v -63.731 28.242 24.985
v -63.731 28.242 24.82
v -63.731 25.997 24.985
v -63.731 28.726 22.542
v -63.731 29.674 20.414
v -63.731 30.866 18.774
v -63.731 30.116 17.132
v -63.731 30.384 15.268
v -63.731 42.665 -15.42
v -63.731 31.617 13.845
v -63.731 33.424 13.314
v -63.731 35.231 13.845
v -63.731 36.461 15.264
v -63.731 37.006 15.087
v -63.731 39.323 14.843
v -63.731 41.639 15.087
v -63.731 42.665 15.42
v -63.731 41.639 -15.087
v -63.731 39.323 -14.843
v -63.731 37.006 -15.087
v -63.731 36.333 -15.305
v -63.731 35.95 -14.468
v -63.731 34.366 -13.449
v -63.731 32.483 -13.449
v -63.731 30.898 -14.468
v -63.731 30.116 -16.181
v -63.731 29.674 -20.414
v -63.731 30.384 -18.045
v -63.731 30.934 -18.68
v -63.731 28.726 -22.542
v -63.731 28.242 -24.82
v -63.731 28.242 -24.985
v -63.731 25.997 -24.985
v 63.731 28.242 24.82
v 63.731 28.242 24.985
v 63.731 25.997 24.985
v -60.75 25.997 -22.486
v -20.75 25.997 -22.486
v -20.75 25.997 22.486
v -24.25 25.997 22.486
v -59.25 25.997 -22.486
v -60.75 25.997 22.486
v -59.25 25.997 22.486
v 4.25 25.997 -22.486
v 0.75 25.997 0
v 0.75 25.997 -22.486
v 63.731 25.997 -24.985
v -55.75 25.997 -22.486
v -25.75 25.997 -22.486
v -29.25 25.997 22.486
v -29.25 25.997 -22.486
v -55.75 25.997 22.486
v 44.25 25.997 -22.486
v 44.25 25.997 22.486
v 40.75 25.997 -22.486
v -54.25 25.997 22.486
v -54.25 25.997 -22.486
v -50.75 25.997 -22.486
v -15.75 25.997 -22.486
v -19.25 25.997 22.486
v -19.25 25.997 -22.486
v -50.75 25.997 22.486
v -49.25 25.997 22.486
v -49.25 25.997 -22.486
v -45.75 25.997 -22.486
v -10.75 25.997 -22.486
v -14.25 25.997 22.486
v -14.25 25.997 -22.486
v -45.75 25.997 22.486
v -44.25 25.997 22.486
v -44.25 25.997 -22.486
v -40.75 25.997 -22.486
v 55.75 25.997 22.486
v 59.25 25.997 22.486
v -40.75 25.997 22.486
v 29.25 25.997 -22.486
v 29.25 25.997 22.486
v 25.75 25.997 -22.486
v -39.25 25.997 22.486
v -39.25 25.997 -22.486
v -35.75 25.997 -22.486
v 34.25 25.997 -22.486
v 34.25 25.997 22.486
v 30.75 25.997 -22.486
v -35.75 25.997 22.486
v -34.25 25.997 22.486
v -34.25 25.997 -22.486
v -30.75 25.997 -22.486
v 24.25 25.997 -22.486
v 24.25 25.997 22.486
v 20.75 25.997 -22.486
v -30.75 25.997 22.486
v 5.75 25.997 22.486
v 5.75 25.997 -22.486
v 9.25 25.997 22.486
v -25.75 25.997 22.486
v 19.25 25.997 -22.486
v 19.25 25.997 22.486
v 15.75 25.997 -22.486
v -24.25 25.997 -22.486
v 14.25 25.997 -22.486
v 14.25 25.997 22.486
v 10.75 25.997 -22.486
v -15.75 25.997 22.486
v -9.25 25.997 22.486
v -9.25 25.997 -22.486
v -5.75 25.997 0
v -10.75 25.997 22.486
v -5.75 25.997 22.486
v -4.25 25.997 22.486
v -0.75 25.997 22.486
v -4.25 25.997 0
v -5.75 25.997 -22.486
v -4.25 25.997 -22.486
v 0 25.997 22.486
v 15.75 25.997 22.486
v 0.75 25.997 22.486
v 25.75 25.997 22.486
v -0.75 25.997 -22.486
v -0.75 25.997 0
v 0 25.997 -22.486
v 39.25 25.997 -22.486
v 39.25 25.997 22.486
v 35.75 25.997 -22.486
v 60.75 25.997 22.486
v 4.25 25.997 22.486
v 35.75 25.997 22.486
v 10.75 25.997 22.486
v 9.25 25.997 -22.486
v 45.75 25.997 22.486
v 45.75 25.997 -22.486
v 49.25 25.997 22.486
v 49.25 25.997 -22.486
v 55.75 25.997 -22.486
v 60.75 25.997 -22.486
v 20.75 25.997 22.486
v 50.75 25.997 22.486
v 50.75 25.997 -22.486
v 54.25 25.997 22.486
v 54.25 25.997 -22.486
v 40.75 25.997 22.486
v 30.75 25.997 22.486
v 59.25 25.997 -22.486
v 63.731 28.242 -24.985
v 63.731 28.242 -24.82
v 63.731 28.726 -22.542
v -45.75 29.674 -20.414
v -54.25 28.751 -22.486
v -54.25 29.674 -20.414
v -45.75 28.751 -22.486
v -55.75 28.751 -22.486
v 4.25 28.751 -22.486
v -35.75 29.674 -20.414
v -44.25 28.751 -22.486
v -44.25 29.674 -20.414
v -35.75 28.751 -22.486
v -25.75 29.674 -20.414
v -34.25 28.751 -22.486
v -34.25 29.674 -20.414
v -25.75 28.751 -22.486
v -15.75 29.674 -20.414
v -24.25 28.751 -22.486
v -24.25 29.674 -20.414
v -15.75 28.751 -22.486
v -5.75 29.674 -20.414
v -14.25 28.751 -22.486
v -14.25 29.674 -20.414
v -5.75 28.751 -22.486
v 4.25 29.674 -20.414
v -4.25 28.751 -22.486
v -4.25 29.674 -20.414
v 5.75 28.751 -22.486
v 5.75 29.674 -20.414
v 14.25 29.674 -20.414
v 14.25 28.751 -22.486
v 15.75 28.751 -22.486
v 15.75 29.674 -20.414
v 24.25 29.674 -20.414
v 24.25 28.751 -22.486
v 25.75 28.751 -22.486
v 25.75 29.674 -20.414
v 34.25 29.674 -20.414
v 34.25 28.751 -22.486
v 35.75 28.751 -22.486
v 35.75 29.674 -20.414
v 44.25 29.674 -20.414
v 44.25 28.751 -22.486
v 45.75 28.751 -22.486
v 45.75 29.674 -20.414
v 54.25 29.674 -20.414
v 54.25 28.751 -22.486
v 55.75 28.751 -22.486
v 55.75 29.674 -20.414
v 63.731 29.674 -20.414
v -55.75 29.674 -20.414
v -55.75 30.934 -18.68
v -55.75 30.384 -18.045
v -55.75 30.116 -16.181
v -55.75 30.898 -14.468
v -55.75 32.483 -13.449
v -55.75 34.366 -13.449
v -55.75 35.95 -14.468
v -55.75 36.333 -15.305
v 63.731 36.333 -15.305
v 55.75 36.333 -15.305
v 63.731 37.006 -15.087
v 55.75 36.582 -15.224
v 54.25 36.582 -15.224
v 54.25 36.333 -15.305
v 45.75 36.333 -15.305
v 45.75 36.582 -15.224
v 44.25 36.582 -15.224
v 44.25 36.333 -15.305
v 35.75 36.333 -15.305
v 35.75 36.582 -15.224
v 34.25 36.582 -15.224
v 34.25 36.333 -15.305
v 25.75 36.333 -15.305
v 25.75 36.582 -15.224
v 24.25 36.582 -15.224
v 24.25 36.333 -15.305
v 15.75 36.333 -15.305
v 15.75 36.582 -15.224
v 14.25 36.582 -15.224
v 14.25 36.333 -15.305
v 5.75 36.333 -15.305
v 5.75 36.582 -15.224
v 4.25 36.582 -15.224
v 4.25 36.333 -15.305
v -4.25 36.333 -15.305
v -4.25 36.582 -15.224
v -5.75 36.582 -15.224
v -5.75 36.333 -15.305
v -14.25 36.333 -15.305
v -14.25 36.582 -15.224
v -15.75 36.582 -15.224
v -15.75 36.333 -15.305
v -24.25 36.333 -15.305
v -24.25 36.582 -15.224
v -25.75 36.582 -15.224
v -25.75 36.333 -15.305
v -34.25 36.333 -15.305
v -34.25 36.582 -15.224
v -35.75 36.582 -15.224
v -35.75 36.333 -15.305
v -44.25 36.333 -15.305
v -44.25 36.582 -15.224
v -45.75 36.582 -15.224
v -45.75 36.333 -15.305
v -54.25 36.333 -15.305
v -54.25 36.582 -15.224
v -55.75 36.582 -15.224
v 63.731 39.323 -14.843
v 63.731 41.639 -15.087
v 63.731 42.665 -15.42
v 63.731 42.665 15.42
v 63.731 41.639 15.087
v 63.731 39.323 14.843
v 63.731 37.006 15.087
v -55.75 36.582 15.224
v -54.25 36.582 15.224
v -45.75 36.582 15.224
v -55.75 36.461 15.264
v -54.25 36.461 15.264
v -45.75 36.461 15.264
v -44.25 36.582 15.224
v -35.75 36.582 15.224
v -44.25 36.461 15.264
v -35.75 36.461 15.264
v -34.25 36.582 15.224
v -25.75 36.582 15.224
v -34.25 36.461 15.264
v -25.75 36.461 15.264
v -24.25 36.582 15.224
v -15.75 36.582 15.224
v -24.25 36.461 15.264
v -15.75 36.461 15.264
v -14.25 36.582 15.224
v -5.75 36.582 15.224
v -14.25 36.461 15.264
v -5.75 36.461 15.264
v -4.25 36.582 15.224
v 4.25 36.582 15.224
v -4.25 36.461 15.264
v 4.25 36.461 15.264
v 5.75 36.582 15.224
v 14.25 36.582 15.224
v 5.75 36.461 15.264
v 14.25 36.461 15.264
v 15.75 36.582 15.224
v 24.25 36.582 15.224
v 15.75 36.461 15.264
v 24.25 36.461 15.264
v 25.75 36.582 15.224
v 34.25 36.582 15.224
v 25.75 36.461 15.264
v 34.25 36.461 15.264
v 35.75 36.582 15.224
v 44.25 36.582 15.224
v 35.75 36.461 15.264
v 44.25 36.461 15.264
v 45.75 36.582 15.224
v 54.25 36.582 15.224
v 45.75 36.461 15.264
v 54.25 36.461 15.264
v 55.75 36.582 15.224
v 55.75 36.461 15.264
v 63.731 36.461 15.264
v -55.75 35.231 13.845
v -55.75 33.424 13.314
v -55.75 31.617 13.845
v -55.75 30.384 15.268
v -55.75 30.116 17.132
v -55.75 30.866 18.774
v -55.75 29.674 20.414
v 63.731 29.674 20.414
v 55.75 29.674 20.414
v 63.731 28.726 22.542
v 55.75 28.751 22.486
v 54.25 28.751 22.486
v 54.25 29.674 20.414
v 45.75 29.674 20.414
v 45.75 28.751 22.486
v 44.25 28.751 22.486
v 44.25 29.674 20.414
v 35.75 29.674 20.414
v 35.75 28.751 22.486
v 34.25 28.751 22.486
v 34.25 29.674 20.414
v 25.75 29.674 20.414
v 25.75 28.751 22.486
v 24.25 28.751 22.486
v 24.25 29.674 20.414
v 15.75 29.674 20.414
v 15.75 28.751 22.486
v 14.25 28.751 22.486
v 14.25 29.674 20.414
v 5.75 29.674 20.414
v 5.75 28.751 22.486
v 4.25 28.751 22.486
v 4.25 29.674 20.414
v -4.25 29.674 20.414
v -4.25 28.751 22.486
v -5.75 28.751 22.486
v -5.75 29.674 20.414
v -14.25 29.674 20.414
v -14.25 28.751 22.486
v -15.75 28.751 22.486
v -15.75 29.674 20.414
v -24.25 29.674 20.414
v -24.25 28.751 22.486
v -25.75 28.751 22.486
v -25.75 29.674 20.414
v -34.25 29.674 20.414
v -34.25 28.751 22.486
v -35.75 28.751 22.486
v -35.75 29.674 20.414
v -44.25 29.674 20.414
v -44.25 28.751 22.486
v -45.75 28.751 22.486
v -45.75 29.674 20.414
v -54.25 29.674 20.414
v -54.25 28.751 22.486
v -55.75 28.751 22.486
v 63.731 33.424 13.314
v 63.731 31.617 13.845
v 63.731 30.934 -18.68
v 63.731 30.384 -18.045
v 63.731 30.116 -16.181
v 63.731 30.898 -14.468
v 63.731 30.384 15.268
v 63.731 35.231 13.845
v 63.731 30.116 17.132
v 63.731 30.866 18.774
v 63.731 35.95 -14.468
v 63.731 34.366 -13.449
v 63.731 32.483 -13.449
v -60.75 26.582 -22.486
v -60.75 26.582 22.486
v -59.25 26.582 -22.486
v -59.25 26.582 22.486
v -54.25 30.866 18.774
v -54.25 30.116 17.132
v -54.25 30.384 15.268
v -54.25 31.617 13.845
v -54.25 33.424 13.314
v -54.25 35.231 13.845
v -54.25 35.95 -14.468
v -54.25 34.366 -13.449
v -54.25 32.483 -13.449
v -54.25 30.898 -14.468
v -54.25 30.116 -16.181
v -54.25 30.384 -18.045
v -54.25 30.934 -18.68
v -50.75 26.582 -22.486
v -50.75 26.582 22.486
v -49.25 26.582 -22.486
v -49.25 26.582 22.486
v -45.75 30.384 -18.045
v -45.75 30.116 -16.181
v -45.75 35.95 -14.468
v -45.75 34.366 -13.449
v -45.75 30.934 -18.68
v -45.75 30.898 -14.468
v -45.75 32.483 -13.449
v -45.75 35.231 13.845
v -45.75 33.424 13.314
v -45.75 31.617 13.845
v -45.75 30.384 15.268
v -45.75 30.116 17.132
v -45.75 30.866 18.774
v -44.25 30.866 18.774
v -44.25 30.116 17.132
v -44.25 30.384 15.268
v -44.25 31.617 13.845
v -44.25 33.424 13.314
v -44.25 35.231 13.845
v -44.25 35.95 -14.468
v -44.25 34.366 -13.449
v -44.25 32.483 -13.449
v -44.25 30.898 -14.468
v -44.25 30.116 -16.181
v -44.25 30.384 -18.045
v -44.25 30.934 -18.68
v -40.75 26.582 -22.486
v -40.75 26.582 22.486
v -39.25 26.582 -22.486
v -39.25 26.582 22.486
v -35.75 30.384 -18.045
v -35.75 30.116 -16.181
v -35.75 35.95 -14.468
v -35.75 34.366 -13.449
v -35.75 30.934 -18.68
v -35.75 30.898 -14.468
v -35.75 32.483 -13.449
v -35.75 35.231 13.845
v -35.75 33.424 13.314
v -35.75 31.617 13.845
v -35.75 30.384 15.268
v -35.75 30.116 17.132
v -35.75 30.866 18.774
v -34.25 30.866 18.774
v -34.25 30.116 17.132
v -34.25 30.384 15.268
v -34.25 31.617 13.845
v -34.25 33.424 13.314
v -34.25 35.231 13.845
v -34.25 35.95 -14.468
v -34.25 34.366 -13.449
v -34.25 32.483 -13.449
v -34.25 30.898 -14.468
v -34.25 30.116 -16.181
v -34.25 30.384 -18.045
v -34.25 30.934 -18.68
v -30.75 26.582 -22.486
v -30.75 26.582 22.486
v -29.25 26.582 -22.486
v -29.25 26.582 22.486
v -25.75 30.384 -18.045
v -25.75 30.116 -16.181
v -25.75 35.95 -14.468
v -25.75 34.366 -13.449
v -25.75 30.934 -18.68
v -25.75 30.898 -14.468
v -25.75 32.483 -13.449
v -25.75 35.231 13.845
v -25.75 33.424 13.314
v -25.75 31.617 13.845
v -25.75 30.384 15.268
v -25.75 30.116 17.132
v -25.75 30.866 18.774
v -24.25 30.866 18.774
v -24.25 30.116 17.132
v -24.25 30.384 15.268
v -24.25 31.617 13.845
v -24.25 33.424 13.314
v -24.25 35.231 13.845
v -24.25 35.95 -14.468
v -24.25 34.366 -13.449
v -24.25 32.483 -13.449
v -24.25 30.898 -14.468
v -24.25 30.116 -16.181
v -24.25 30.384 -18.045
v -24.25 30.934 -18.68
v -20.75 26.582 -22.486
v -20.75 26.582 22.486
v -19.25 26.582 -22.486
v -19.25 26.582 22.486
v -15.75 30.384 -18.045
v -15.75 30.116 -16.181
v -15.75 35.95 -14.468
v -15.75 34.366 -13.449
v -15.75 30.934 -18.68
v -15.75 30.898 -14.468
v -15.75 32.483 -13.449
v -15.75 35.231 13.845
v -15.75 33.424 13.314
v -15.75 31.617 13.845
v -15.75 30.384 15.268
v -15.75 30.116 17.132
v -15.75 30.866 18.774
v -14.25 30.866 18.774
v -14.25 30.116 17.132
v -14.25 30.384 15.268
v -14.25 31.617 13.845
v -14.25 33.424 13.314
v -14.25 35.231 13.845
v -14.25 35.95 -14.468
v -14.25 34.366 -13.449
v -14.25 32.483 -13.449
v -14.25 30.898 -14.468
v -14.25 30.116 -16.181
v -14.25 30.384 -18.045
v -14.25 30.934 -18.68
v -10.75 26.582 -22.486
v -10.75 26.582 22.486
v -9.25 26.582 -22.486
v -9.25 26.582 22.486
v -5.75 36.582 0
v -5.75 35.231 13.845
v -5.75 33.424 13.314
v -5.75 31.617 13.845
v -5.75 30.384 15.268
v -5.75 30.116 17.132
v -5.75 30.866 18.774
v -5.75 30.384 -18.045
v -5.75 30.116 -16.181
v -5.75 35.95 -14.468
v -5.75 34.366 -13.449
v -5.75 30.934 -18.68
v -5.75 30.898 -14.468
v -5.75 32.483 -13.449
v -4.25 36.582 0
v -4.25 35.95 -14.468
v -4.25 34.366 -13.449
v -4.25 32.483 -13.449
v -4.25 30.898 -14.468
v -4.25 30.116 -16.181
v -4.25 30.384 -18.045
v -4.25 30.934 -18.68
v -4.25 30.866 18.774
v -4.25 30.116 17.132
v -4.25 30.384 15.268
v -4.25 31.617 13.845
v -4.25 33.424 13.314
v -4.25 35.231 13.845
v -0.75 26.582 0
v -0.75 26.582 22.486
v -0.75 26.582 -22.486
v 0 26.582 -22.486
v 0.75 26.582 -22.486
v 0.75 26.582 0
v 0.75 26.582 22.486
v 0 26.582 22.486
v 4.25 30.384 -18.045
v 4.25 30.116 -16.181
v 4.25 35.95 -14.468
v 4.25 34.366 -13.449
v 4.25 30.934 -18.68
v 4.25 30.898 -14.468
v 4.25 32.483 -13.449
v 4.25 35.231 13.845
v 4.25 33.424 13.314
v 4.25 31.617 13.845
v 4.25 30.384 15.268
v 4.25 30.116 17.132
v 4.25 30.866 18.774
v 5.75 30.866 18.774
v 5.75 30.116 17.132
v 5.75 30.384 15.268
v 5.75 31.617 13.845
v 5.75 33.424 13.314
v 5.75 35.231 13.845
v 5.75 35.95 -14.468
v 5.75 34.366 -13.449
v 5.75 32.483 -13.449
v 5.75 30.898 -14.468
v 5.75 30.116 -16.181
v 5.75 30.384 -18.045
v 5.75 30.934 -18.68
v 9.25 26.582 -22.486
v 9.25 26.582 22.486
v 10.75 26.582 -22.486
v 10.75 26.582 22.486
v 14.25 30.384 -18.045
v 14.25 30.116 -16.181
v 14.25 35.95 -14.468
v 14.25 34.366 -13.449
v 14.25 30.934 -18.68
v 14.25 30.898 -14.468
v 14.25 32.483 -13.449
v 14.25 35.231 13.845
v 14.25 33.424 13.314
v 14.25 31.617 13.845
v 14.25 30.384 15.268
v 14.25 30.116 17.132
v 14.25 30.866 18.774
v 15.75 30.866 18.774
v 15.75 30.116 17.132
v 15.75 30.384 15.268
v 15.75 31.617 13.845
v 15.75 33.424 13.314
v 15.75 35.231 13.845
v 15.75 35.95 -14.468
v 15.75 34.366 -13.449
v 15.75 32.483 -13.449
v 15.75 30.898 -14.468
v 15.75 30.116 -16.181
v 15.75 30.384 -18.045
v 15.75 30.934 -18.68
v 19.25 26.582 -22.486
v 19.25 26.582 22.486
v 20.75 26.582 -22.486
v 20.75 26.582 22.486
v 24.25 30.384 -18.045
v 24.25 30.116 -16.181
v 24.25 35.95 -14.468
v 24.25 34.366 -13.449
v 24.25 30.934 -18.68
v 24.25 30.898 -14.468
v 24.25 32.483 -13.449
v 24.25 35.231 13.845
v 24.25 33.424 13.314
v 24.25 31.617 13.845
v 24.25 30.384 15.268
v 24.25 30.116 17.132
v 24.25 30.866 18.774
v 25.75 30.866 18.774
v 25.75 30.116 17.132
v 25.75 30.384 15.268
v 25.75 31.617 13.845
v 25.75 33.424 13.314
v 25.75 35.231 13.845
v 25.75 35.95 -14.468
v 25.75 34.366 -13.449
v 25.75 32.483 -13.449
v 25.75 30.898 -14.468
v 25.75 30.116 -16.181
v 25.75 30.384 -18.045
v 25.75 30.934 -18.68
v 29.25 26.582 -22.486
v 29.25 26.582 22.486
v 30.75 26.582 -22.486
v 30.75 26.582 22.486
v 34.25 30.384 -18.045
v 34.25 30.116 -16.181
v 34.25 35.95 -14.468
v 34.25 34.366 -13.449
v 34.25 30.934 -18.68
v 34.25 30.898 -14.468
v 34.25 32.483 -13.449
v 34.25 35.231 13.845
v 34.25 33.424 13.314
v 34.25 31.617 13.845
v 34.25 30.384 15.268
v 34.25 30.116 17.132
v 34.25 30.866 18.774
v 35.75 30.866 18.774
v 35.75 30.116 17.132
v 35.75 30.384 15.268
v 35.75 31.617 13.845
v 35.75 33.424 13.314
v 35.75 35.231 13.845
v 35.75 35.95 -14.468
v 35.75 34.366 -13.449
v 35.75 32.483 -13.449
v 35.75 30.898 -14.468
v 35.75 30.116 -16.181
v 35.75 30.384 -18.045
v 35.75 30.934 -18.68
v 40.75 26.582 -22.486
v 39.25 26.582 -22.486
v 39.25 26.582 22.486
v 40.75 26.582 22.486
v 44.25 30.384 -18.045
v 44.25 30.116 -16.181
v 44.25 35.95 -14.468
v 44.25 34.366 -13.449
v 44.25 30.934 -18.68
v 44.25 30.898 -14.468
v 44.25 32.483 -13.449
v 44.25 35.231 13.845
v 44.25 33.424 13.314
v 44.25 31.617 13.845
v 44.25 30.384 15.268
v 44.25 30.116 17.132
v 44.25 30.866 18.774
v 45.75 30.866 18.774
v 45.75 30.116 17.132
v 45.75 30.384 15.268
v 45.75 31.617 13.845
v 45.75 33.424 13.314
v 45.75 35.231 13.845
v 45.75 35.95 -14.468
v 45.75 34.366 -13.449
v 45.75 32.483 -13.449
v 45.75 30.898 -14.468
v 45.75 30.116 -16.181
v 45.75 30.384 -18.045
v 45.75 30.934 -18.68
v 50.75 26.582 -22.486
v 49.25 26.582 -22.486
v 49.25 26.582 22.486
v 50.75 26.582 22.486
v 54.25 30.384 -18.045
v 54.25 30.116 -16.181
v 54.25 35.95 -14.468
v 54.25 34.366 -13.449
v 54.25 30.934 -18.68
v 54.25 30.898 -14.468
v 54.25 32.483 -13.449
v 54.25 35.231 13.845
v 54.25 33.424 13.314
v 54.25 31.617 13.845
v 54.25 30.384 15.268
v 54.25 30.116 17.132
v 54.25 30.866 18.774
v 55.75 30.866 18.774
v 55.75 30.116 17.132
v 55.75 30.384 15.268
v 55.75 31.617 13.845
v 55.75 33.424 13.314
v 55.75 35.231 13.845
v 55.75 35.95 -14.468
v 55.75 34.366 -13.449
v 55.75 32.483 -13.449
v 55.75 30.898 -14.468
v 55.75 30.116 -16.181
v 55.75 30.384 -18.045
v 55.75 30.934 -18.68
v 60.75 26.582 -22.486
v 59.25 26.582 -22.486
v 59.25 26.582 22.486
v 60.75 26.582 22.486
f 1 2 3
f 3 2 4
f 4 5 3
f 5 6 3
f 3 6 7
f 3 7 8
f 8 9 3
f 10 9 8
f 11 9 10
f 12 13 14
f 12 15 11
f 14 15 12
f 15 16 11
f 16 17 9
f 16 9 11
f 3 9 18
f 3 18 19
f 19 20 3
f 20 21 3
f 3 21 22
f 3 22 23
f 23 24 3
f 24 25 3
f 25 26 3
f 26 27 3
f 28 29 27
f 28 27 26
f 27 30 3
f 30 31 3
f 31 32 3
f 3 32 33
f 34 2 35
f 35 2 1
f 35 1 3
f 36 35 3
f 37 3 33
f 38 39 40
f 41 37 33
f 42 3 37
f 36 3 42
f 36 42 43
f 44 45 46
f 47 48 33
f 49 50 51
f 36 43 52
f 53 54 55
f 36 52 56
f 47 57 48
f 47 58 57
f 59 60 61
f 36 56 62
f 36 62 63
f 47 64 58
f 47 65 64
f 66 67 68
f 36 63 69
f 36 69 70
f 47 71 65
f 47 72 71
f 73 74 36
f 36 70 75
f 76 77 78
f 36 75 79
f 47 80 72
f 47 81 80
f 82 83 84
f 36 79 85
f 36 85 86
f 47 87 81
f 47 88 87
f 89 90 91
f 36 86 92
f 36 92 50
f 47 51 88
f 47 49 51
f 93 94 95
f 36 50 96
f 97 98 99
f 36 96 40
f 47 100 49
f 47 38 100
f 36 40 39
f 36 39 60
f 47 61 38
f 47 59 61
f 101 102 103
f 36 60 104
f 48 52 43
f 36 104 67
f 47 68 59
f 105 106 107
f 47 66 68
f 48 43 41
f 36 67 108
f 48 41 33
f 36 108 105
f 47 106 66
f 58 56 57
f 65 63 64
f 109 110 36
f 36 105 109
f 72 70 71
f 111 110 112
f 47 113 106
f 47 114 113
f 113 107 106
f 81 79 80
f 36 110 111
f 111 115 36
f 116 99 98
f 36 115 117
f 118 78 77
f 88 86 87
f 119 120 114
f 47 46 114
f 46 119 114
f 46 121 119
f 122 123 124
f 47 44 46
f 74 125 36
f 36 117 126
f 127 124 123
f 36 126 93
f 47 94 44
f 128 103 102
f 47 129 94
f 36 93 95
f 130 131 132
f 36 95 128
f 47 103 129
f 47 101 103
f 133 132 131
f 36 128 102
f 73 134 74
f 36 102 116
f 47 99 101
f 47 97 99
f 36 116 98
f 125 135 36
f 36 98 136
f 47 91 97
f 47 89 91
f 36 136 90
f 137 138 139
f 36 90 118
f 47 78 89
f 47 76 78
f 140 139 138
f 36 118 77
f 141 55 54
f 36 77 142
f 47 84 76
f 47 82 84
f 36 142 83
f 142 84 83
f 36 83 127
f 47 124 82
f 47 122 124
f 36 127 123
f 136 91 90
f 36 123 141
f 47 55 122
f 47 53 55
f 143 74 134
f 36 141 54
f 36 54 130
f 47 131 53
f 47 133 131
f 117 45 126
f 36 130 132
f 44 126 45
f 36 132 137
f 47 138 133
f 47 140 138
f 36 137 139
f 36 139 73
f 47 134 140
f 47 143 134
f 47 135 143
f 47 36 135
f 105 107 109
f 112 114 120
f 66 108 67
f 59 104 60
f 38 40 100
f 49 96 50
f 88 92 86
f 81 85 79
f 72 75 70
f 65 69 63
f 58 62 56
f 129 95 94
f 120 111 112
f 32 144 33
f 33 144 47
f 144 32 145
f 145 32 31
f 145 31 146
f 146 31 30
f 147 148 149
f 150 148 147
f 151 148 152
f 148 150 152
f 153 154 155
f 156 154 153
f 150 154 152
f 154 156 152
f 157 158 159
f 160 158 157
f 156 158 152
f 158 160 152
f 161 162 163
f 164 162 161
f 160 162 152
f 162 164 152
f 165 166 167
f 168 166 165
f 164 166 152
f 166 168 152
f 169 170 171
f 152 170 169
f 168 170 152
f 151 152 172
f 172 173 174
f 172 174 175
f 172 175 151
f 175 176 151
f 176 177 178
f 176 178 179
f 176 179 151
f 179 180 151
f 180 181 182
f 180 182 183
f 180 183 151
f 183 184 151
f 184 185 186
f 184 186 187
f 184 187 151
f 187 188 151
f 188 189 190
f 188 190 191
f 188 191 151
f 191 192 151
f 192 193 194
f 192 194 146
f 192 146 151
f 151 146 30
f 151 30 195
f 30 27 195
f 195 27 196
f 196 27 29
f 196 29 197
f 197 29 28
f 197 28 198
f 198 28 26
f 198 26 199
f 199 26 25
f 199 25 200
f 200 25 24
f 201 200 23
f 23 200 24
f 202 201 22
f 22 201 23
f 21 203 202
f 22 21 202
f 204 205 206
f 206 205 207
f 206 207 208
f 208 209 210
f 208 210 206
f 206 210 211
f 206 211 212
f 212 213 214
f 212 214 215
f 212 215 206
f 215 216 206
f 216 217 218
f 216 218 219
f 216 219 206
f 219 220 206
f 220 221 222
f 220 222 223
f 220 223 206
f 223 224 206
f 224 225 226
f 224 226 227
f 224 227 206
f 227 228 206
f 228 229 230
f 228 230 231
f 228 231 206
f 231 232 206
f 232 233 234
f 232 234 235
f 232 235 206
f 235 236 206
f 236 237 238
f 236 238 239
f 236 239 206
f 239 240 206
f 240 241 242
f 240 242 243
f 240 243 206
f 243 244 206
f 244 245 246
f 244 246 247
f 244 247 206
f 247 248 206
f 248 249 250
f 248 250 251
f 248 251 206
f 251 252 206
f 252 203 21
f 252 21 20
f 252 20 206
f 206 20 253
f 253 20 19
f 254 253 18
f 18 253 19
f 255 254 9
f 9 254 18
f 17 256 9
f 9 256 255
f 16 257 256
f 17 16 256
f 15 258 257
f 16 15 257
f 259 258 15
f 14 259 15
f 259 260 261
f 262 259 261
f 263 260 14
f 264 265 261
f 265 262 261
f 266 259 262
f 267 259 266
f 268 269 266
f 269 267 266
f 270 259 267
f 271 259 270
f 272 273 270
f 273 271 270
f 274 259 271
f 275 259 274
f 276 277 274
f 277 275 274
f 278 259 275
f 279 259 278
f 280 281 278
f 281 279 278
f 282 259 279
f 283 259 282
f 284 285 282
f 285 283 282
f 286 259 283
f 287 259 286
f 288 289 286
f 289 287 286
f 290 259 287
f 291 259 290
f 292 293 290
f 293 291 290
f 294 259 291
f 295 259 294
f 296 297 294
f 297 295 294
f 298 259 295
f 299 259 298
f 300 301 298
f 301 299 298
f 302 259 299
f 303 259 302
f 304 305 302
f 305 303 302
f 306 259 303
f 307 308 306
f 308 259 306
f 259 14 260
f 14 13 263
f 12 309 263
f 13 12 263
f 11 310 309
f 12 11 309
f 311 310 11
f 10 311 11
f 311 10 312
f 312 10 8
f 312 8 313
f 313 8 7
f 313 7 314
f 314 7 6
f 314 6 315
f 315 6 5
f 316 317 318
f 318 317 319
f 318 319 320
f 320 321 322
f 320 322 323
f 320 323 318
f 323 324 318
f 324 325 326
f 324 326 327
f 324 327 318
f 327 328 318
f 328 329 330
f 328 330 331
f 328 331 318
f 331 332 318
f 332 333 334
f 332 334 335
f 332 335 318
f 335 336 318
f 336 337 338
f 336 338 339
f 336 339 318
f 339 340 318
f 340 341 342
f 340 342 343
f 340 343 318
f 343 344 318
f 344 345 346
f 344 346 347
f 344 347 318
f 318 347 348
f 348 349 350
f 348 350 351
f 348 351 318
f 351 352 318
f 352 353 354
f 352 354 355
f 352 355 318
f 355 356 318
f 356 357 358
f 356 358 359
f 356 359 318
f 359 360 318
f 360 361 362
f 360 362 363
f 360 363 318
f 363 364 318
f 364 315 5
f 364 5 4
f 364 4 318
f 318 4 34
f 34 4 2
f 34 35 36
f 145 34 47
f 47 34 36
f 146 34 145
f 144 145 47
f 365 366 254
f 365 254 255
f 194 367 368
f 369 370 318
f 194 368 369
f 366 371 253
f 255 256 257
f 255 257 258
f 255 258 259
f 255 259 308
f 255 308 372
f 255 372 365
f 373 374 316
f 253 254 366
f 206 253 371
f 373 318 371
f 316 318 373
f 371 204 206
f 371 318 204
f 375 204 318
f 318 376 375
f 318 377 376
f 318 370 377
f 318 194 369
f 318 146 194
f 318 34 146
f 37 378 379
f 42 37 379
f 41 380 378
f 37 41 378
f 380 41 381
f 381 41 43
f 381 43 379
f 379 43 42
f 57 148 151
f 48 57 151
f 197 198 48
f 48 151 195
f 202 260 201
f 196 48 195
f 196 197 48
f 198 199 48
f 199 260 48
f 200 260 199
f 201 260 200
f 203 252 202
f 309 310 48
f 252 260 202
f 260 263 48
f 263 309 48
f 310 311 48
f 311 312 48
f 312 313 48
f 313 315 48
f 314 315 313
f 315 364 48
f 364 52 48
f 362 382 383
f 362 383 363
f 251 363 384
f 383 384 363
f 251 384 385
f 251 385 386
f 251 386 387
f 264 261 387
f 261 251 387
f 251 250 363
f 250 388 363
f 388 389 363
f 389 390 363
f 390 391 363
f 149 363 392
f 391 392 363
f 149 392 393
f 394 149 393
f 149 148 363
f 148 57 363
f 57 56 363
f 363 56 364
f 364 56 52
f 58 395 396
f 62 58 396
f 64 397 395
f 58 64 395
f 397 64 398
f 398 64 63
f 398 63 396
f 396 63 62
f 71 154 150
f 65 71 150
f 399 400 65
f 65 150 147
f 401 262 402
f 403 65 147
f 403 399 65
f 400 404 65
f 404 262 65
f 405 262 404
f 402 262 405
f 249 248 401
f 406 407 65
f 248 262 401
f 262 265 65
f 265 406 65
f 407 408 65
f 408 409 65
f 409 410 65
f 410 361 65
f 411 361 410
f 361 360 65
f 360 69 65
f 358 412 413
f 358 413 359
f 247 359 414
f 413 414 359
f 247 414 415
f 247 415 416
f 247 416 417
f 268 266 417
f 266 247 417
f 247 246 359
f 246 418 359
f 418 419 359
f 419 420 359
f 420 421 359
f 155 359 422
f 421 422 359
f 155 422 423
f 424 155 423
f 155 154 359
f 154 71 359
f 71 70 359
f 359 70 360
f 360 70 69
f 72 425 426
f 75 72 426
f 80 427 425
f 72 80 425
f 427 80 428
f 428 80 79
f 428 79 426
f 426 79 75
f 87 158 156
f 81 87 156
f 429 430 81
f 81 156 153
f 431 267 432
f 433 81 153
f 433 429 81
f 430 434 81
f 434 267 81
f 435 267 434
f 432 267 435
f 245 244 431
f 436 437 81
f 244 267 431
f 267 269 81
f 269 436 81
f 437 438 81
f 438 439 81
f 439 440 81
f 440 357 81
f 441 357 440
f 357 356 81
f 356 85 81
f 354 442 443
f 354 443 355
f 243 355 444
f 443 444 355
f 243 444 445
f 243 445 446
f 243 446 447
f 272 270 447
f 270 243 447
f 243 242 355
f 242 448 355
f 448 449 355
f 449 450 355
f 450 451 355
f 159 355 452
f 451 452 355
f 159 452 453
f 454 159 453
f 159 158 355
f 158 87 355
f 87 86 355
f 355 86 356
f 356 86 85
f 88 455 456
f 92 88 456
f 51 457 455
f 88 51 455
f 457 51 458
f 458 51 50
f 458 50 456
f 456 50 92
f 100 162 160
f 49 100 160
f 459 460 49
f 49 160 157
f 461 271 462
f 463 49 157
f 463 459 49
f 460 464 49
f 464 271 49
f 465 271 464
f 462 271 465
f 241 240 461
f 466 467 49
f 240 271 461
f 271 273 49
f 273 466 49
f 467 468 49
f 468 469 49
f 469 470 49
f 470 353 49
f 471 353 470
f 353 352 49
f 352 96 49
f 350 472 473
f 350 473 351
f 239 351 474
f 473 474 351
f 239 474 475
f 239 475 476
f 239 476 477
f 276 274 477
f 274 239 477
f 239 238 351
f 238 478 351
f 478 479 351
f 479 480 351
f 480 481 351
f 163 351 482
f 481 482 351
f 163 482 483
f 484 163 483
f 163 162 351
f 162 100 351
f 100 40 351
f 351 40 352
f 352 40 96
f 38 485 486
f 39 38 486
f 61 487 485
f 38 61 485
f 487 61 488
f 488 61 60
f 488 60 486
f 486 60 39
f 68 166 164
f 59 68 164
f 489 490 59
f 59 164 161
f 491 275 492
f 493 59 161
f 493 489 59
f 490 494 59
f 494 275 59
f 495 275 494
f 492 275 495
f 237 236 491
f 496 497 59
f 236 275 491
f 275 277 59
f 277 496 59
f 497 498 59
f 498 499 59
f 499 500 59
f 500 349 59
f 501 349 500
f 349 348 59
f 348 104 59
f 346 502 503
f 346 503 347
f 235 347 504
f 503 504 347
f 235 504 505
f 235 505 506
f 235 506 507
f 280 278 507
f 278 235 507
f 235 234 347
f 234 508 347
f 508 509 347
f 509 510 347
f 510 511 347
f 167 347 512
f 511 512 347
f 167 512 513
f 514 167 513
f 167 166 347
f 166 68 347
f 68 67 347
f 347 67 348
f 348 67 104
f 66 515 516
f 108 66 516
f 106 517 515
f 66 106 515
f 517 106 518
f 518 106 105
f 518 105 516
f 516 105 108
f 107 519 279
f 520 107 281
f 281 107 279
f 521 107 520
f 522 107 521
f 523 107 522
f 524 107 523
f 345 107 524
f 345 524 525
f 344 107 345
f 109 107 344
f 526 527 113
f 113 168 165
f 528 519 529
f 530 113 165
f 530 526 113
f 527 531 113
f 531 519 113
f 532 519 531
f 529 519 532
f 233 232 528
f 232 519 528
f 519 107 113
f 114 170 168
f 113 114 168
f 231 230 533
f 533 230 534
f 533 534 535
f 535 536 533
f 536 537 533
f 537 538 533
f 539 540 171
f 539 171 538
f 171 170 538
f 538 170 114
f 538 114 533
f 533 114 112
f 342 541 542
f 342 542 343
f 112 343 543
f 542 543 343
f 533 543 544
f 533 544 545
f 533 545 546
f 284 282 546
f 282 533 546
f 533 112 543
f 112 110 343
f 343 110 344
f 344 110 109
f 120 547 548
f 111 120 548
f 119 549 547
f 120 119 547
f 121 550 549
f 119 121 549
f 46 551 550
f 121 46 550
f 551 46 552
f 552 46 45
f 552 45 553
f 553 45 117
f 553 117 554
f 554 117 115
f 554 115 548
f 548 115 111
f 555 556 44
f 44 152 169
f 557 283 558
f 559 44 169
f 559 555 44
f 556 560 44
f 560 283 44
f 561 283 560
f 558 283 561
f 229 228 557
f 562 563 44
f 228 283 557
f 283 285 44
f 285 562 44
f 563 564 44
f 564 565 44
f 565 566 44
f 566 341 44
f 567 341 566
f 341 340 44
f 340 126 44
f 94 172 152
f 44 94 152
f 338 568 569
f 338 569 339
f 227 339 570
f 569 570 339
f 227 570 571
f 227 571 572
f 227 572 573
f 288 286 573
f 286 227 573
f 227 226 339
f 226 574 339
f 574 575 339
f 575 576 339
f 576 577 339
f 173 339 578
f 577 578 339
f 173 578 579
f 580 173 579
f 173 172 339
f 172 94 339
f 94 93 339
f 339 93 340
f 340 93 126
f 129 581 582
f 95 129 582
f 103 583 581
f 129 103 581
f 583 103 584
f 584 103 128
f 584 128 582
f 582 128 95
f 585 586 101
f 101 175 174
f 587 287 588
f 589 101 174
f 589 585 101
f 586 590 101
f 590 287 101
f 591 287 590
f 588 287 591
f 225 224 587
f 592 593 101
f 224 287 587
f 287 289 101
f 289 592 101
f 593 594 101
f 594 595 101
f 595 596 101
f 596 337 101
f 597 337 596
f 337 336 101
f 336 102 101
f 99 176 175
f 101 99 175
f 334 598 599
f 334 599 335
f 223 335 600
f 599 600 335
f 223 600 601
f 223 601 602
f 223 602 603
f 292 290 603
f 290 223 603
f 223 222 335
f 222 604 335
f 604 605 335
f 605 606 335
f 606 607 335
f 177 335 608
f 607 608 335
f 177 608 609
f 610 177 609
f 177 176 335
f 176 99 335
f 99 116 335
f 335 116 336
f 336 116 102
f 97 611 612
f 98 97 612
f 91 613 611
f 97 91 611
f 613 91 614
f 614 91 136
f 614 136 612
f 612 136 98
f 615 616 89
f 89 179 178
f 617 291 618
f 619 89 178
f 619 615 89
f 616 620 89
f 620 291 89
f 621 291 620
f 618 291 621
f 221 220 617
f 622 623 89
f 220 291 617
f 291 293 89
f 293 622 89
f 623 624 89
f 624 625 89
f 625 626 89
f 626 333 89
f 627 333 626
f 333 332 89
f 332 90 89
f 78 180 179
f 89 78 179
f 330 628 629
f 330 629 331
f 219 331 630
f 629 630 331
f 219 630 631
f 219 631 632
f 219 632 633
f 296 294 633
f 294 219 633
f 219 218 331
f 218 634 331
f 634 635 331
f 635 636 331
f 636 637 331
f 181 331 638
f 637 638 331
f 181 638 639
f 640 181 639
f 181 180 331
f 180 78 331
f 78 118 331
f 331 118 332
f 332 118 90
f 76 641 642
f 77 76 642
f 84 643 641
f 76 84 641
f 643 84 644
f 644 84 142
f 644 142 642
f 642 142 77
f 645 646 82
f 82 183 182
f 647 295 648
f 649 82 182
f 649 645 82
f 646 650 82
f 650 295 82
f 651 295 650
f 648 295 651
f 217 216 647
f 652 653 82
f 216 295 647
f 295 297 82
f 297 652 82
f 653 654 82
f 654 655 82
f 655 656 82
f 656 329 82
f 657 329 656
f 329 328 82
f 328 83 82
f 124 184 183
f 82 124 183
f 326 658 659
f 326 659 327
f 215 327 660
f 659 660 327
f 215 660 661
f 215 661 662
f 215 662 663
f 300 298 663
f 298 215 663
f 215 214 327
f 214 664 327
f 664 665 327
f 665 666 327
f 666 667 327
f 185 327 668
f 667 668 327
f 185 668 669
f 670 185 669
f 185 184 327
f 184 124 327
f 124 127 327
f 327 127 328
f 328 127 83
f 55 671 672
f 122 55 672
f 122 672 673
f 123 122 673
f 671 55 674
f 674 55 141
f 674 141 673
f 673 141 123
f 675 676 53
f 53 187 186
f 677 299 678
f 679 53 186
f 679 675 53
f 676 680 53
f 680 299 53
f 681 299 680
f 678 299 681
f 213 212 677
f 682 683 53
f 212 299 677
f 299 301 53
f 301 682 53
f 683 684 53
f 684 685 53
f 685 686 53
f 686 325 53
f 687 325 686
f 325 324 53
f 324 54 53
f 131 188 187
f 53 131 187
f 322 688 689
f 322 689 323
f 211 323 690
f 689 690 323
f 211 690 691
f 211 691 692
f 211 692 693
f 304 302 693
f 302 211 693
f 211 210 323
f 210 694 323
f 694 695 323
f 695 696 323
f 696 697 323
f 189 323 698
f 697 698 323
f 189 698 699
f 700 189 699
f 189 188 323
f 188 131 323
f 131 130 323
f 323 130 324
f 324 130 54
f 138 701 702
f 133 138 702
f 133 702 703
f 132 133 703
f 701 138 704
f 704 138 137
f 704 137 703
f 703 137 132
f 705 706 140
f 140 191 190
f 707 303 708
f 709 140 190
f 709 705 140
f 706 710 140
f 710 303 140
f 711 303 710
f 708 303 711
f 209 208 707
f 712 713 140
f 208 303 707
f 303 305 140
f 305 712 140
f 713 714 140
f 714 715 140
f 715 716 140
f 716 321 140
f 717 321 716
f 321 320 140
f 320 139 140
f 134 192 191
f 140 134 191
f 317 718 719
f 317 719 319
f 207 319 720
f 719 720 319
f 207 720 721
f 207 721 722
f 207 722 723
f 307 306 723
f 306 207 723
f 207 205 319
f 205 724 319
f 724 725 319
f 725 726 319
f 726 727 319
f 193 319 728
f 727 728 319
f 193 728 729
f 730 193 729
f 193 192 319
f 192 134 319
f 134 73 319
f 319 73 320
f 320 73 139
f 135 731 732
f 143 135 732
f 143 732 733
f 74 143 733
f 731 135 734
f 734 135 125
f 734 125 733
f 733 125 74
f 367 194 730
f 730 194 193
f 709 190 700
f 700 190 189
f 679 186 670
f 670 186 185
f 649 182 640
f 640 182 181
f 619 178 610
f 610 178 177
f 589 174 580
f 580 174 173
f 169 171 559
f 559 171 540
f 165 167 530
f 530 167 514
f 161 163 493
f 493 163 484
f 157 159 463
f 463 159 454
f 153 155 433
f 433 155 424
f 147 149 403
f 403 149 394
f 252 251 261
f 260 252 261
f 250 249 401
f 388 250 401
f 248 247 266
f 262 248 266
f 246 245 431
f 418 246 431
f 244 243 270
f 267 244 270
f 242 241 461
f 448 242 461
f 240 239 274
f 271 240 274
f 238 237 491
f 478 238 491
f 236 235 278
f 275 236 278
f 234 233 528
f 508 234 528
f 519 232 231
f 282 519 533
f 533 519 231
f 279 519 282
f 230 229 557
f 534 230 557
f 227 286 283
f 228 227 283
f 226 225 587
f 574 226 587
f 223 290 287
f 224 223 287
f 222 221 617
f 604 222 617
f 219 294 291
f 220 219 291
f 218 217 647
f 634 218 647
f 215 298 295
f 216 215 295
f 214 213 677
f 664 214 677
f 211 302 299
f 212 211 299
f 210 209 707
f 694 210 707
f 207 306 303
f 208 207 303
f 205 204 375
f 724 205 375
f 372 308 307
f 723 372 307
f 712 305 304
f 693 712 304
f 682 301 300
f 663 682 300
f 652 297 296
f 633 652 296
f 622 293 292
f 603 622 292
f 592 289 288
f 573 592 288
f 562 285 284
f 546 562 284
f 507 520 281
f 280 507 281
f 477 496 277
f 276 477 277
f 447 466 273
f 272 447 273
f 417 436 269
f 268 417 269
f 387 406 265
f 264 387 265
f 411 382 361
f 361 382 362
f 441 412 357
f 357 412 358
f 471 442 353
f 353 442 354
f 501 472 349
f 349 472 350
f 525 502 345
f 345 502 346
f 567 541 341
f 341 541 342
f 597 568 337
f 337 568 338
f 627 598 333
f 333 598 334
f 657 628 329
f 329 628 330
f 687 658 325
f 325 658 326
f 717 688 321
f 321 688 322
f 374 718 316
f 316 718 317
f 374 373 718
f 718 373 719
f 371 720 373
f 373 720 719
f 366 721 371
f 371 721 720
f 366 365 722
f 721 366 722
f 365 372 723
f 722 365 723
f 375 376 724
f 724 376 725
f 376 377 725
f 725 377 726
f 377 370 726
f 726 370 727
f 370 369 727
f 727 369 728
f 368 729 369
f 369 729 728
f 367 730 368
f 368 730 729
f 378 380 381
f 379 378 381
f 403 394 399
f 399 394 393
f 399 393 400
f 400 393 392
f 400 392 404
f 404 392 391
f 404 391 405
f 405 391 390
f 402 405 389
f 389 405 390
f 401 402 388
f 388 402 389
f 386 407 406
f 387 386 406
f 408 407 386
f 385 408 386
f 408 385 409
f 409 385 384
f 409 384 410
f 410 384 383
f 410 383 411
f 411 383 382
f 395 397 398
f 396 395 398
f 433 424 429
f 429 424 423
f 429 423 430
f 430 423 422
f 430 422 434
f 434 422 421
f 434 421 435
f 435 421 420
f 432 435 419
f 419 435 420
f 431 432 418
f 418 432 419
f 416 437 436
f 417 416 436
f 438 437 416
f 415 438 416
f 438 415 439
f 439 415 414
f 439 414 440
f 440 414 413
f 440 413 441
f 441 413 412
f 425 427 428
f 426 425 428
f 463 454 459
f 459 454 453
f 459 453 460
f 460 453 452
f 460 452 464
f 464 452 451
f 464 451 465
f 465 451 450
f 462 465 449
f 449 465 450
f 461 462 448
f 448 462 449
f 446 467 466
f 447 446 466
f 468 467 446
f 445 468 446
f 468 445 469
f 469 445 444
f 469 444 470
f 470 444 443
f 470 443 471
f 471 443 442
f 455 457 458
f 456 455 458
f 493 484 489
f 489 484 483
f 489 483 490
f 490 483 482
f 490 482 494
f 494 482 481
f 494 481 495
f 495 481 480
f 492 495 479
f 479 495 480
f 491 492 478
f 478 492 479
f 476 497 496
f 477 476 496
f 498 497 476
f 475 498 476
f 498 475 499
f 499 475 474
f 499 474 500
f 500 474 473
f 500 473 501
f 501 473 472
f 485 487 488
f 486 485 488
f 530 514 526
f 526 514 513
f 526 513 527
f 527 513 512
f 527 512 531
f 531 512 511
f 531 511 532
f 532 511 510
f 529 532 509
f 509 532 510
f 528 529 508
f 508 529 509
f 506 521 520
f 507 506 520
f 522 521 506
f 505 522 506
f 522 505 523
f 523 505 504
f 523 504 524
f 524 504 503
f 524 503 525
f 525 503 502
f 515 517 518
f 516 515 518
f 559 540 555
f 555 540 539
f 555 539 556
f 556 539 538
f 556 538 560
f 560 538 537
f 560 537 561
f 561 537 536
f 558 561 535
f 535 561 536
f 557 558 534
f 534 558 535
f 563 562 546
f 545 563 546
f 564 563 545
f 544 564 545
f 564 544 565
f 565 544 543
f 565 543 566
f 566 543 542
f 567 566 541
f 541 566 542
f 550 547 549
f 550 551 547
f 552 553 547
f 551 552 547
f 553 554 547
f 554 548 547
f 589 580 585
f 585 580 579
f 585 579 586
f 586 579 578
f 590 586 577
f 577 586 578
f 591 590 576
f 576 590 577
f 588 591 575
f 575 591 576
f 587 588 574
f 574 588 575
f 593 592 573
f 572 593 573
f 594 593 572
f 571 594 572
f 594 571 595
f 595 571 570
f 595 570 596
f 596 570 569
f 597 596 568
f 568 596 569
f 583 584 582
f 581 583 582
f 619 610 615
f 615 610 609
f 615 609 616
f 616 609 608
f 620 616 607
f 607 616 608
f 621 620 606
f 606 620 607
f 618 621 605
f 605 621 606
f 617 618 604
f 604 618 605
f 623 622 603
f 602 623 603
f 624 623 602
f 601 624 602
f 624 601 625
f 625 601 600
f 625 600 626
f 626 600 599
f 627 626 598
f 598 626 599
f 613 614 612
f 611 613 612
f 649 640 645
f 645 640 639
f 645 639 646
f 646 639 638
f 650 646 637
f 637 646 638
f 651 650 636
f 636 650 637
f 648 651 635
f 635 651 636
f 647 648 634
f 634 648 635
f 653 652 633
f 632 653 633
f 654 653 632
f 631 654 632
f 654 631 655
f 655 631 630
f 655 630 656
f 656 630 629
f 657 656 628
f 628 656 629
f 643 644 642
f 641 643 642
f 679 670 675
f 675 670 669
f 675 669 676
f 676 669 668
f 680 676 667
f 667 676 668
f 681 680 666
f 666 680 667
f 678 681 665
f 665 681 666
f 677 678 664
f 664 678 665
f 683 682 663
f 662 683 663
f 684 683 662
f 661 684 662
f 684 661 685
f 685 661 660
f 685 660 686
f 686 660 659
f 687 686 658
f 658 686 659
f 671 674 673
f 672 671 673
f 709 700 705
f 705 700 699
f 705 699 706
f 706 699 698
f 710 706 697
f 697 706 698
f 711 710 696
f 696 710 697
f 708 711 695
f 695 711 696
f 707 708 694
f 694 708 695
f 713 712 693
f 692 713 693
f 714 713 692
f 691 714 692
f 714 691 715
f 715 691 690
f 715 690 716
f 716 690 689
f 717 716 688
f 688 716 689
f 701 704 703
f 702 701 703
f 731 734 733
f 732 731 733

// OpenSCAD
// file: 3dprinter.scad
//===============================================//
//===============================================//
//     BioDeploy SCAD file = 3dprinter.scad      //
//                 Start File                    //
//===============================================//
//===============================================//
//choose the max specs for your 3d printer
//here we use a replicator2x specs
x_print_max = 24.6*10;
y_print_max = 15.2*10;
z_print_max = 15.5*10;
//don't forget *10 to put unit in centimeters
//-----------------------------------------------//
//===============================================//
//===============================================//
//     BioDeploy SCAD file = 3dprinter.scad      //
//                   End  File                   //
//===============================================//
//===============================================//
// main file
//===============================================//
//===============================================//
//BioDeploy SCAD file = hydrolyseur_top_core_plates_fixation_L.scad//
//                 Start File                    //
//===============================================//
//===============================================//
//-----------------------------------------------//
//===============================================//
//             3d printer parameters             //
//===============================================//
include <3dprinter.scad>
//===============================================//
//                 variables                     //
//===============================================//
include <hydrolyseur_variables.scad>

//===============================================//
//               Calls for use                   //
//===============================================//

//===============================================//
//                    Trees                      //
//===============================================//
module number1()
{

for (i_x = [0:core_plate_number/4]) 
{
translate([i_x*10,0,0]) cube([x_core_plate_size,y_h2o_top_core_plate+3,z_h2o_top_core_plate],center = true);
}
}

module number2()
{

for (i_x = [0:core_plate_number/4]) 
{
translate([i_x*10,0,0]) cube([x_core_plate_size,y_h2o_top_core_plate+3,z_h2o_top_core_plate],center = true);
}
}



//fixation



module fixation(){
union()
{
hull() {
color("Red",1)translate([0,-y_h2o_top_core_int/2,z_h2o_top_core_int/2-(z_h2o_top_core_int/3)/2])cube([x_h2o_top_core_int,y_h2o_top_core_mid/5,z_h2o_top_core_int/3],center = true);
color("Red",1)translate([0,-y_h2o_top_core_int/2,-z_h2o_top_core_int/2+(z_h2o_top_core_int/3)/2])cube([x_h2o_top_core_int,y_h2o_top_core_mid/5,z_h2o_top_core_int/3],center = true);
}

color("orange")  translate([0,-y_h2o_top_core_int/1.7,0])cube([x_h2o_top_core_int,y_h2o_top_core_int/10,z_h2o_top_core_int+2],center = true);
}}


module fixation2() {

difference() {
union()
{
rotate([180,180,0])fixation();

}

//axe

union() {
translate([0,-y_h2o_top_core_int/2,z_h2o_top_core_int/3])rotate([0,90,0])cylinder(2*x_h2o_top_core_int,y_h2o_top_core_int/20,y_h2o_top_core_int/20,center=true);
translate([0,y_h2o_top_core_int/2,z_h2o_top_core_int/3])rotate([0,90,0])cylinder(2*x_h2o_top_core_int,y_h2o_top_core_int/20,y_h2o_top_core_int/20,center=true);
translate([0,-y_h2o_top_core_int/2,-z_h2o_top_core_int/3])rotate([0,90,0])cylinder(2*x_h2o_top_core_int,y_h2o_top_core_int/20,y_h2o_top_core_int/20,center=true);
translate([0,y_h2o_top_core_int/2,-z_h2o_top_core_int/3])rotate([0,90,0])cylinder(2*x_h2o_top_core_int,y_h2o_top_core_int/20,y_h2o_top_core_int/20,center=true);


//open

translate([0,y_h2o_top_core_int/1.7,(z_h2o_top_core_int+2)/2])rotate([0,90,0])cylinder(2*x_h2o_top_core_int,y_h2o_top_core_int/6,y_h2o_top_core_int/6,center=true);
translate([0,-y_h2o_top_core_int/1.7,(z_h2o_top_core_int+2)/2])rotate([0,90,0])cylinder(2*x_h2o_top_core_int,y_h2o_top_core_int/6,y_h2o_top_core_int/6,center=true);
translate([0,-y_h2o_top_core_int/1.7,-(z_h2o_top_core_int+2)/2])rotate([0,90,0])cylinder(2*x_h2o_top_core_int,y_h2o_top_core_int/6,y_h2o_top_core_int/6,center=true);
translate([0,y_h2o_top_core_int/1.7,-(z_h2o_top_core_int+2)/2])rotate([0,90,0])cylinder(2*x_h2o_top_core_int,y_h2o_top_core_int/6,y_h2o_top_core_int/6,center=true);

translate([0,-5,0]) number1();
translate([-5,5,0]) number2();

rotate([0,180,0])translate([0,-5,0]) number1();
rotate([0,180,0])translate([+5,+5,0]) number2();
}
}

}

fixation2();




//%cube([x_h2o_top_core_ext,y_h2o_top_core_ext,z_h2o_top_core_ext],center = true);

//-----------------------------------------------//
//===============================================//
//===============================================//
//BioDeploy SCAD file = hydrolyseur_top_core_plates_fixation.scad//
//                   End  File                   //
//===============================================//
//===============================================//
